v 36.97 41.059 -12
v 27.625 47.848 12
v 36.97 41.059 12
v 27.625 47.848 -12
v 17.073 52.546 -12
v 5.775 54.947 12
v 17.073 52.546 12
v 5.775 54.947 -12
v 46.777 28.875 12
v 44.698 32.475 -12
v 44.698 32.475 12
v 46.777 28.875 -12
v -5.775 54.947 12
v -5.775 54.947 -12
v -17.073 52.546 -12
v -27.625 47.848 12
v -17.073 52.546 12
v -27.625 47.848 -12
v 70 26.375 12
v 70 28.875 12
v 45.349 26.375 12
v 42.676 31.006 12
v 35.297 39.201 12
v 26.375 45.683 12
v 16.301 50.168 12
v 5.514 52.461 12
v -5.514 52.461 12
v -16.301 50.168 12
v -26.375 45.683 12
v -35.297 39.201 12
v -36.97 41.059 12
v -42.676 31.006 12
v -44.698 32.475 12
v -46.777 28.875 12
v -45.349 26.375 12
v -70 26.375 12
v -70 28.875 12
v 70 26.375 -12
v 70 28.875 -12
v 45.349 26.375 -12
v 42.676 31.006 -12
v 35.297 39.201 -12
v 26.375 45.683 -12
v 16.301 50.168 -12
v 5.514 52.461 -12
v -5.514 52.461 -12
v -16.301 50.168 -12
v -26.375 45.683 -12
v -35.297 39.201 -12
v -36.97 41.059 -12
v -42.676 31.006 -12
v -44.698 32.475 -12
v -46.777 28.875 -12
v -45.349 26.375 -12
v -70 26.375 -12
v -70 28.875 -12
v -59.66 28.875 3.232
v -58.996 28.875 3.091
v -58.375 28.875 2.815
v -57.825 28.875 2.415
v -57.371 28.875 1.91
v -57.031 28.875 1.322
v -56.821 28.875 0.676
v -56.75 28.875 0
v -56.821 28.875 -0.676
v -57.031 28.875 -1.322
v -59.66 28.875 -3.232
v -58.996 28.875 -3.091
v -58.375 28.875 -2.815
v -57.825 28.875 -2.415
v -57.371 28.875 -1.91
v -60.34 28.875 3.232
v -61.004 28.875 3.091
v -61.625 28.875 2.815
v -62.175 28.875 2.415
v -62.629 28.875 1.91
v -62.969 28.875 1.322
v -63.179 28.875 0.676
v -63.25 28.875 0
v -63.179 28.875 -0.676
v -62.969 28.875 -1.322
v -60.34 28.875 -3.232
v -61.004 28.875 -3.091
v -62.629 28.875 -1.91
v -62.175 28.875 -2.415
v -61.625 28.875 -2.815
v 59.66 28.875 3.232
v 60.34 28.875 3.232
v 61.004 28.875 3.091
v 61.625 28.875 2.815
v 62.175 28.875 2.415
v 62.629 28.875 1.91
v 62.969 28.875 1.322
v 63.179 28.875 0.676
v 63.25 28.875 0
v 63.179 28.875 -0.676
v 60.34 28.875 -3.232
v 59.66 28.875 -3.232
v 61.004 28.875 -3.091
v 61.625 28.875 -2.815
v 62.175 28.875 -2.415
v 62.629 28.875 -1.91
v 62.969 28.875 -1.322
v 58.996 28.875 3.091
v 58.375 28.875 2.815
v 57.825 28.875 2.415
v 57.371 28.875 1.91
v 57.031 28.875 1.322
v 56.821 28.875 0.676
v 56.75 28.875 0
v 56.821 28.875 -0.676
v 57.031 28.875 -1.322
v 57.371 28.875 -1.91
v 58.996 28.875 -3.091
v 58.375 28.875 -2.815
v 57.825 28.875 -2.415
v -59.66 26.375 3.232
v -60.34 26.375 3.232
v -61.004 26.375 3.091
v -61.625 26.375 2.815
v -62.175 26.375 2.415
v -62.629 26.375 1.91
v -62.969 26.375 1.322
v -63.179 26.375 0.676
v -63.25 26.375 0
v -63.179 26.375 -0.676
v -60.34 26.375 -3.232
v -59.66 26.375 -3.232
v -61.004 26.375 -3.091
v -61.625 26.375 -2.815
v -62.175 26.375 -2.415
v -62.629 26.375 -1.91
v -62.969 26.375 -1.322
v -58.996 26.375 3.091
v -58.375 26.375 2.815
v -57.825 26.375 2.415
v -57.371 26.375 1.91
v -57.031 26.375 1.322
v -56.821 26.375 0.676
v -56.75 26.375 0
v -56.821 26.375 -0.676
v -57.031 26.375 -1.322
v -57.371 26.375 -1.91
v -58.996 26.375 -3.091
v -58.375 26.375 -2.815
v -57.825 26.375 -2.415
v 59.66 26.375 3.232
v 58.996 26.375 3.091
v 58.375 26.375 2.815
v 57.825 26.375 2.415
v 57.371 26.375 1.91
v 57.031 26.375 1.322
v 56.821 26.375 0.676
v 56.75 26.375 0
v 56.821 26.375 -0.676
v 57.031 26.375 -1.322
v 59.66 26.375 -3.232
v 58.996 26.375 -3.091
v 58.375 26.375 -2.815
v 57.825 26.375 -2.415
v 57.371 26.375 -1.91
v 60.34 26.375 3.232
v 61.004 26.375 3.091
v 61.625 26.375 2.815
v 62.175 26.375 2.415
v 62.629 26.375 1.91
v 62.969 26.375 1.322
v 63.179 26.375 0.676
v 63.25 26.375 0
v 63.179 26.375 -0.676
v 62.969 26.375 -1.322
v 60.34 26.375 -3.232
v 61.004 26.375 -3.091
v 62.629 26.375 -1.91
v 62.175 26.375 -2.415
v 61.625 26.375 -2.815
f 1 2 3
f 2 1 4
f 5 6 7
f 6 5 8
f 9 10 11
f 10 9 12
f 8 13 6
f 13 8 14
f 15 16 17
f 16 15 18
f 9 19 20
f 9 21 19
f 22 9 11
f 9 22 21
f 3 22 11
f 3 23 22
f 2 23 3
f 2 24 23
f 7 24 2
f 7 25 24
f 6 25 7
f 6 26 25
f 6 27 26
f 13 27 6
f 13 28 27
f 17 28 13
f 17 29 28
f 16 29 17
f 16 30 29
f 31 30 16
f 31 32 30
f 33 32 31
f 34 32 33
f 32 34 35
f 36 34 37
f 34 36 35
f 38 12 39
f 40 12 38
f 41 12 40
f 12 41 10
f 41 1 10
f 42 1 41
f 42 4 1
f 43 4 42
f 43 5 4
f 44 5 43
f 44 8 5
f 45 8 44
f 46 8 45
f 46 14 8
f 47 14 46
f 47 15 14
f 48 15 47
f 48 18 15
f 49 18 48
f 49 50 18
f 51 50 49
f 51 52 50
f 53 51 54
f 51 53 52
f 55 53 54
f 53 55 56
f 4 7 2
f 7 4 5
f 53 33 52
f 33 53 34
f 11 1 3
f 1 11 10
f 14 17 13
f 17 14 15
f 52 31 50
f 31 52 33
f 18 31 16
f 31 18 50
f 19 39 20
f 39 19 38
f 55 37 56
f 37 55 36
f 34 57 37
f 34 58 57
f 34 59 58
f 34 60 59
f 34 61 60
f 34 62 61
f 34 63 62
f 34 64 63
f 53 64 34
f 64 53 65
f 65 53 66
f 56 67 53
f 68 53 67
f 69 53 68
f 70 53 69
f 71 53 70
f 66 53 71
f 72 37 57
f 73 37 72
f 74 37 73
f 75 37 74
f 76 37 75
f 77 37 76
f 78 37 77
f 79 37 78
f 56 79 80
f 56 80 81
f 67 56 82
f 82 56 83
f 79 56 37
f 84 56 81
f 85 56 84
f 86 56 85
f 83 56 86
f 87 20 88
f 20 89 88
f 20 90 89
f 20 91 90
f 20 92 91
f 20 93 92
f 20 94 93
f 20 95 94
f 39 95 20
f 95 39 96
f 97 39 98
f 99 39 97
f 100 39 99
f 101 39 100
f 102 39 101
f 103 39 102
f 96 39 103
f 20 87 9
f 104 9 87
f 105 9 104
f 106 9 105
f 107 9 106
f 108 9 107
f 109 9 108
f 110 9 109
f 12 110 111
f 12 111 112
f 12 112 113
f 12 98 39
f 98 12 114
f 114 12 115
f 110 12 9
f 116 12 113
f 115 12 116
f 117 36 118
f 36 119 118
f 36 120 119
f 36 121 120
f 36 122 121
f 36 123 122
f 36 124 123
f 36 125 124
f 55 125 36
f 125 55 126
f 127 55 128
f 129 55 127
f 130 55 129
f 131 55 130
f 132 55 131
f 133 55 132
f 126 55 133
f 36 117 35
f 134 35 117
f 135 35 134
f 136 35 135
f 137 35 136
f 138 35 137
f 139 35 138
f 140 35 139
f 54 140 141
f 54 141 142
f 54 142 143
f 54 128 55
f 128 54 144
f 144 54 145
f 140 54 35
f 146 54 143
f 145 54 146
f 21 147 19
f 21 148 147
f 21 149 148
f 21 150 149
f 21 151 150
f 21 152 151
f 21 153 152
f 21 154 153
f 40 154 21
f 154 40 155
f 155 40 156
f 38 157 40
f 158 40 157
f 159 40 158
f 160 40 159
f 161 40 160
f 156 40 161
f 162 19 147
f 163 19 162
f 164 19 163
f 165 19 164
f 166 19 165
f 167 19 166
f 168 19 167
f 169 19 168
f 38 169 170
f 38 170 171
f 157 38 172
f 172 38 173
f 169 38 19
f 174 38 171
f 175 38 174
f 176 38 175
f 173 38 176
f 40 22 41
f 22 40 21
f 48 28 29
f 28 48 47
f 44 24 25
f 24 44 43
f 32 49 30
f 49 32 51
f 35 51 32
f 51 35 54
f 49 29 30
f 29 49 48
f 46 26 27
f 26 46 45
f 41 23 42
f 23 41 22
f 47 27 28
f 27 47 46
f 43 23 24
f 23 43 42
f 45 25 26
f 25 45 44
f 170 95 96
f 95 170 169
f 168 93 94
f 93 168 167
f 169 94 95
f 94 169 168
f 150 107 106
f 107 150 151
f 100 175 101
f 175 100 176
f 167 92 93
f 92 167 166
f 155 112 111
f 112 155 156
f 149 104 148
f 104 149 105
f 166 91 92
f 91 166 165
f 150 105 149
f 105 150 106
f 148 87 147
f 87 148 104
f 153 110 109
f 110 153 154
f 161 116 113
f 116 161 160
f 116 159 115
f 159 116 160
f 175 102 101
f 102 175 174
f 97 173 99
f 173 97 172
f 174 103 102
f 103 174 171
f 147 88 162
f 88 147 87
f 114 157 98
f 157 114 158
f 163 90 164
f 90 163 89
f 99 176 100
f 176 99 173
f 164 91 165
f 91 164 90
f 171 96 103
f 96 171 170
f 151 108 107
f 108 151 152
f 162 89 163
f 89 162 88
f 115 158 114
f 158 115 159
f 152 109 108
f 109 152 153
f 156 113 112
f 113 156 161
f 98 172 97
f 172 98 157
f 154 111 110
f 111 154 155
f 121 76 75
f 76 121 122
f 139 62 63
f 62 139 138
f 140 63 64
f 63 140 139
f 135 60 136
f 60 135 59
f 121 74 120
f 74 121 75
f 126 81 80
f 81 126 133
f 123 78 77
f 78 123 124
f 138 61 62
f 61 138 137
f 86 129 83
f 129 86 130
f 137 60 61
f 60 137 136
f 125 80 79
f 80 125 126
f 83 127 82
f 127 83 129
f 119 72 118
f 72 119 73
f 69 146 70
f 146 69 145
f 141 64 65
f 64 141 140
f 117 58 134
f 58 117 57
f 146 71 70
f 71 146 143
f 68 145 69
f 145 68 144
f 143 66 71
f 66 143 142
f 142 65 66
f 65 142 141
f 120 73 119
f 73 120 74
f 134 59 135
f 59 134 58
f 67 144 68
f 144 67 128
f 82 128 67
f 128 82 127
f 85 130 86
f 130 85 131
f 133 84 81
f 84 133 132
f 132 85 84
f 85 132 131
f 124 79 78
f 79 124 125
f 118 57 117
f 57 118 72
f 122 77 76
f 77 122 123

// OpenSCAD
//Infant-breath-mechanical-simulator
//https://github.com/arisberd/Infant-breath-mechanical-simulator
//version 0.2
//GNU GPL v3

//This printed piece graps the syringe-piston 
//At least 2 pieces need to stabilise syringe



//Data
d_emb=108; //syringe diameter
th_1 = 2.5; //thickness of the circular piece
length=140;//total length
th_2 = 2.5; //thickness of the cantilever
//off = 11; //μετατόπιση "offset" προβόλου
phi = 30; //degrees of cantilever displacement
bolt_distance = 120; //distance between the two bolts
bolt_d = 6.5; //diameter of the bolts
width = 24; //width of the piece

$fn=30;
//Σύμφωνα με τα άλλα μοντέλα, οι τρύπες αποτελούν ένα τετράγωνο 28Χ62 (τα κέντρα τους). Βρίσκονται σε ένα κουτί 17,5Χ48Χ80

difference () {
    union () {
        cylinder (d=d_emb+th_1, h=width, center =true);
        off = sin(phi) * (d_emb+th_1)/2;
        translate([0,off,0]) cube ([length, th_2, width], center=true);
        
    }
    cylinder (d=d_emb-th_1, h=width+1, center=true);
    //first hole
    #translate ([bolt_distance/2,0,0]) rotate ([90,0,0]) cylinder (h=d_emb+th_1, d=bolt_d,center=true);
    //second hole
    #translate ([-bolt_distance/2,0,0]) rotate ([90,0,0]) cylinder (h=d_emb+th_1, d=bolt_d,center=true);
    off = sin(phi) * (d_emb+th_1)/2;
    translate([-length/2,-d_emb-th_1-th_2/2,-width/2]) cube([length,off+d_emb+th_1,width]);
}
